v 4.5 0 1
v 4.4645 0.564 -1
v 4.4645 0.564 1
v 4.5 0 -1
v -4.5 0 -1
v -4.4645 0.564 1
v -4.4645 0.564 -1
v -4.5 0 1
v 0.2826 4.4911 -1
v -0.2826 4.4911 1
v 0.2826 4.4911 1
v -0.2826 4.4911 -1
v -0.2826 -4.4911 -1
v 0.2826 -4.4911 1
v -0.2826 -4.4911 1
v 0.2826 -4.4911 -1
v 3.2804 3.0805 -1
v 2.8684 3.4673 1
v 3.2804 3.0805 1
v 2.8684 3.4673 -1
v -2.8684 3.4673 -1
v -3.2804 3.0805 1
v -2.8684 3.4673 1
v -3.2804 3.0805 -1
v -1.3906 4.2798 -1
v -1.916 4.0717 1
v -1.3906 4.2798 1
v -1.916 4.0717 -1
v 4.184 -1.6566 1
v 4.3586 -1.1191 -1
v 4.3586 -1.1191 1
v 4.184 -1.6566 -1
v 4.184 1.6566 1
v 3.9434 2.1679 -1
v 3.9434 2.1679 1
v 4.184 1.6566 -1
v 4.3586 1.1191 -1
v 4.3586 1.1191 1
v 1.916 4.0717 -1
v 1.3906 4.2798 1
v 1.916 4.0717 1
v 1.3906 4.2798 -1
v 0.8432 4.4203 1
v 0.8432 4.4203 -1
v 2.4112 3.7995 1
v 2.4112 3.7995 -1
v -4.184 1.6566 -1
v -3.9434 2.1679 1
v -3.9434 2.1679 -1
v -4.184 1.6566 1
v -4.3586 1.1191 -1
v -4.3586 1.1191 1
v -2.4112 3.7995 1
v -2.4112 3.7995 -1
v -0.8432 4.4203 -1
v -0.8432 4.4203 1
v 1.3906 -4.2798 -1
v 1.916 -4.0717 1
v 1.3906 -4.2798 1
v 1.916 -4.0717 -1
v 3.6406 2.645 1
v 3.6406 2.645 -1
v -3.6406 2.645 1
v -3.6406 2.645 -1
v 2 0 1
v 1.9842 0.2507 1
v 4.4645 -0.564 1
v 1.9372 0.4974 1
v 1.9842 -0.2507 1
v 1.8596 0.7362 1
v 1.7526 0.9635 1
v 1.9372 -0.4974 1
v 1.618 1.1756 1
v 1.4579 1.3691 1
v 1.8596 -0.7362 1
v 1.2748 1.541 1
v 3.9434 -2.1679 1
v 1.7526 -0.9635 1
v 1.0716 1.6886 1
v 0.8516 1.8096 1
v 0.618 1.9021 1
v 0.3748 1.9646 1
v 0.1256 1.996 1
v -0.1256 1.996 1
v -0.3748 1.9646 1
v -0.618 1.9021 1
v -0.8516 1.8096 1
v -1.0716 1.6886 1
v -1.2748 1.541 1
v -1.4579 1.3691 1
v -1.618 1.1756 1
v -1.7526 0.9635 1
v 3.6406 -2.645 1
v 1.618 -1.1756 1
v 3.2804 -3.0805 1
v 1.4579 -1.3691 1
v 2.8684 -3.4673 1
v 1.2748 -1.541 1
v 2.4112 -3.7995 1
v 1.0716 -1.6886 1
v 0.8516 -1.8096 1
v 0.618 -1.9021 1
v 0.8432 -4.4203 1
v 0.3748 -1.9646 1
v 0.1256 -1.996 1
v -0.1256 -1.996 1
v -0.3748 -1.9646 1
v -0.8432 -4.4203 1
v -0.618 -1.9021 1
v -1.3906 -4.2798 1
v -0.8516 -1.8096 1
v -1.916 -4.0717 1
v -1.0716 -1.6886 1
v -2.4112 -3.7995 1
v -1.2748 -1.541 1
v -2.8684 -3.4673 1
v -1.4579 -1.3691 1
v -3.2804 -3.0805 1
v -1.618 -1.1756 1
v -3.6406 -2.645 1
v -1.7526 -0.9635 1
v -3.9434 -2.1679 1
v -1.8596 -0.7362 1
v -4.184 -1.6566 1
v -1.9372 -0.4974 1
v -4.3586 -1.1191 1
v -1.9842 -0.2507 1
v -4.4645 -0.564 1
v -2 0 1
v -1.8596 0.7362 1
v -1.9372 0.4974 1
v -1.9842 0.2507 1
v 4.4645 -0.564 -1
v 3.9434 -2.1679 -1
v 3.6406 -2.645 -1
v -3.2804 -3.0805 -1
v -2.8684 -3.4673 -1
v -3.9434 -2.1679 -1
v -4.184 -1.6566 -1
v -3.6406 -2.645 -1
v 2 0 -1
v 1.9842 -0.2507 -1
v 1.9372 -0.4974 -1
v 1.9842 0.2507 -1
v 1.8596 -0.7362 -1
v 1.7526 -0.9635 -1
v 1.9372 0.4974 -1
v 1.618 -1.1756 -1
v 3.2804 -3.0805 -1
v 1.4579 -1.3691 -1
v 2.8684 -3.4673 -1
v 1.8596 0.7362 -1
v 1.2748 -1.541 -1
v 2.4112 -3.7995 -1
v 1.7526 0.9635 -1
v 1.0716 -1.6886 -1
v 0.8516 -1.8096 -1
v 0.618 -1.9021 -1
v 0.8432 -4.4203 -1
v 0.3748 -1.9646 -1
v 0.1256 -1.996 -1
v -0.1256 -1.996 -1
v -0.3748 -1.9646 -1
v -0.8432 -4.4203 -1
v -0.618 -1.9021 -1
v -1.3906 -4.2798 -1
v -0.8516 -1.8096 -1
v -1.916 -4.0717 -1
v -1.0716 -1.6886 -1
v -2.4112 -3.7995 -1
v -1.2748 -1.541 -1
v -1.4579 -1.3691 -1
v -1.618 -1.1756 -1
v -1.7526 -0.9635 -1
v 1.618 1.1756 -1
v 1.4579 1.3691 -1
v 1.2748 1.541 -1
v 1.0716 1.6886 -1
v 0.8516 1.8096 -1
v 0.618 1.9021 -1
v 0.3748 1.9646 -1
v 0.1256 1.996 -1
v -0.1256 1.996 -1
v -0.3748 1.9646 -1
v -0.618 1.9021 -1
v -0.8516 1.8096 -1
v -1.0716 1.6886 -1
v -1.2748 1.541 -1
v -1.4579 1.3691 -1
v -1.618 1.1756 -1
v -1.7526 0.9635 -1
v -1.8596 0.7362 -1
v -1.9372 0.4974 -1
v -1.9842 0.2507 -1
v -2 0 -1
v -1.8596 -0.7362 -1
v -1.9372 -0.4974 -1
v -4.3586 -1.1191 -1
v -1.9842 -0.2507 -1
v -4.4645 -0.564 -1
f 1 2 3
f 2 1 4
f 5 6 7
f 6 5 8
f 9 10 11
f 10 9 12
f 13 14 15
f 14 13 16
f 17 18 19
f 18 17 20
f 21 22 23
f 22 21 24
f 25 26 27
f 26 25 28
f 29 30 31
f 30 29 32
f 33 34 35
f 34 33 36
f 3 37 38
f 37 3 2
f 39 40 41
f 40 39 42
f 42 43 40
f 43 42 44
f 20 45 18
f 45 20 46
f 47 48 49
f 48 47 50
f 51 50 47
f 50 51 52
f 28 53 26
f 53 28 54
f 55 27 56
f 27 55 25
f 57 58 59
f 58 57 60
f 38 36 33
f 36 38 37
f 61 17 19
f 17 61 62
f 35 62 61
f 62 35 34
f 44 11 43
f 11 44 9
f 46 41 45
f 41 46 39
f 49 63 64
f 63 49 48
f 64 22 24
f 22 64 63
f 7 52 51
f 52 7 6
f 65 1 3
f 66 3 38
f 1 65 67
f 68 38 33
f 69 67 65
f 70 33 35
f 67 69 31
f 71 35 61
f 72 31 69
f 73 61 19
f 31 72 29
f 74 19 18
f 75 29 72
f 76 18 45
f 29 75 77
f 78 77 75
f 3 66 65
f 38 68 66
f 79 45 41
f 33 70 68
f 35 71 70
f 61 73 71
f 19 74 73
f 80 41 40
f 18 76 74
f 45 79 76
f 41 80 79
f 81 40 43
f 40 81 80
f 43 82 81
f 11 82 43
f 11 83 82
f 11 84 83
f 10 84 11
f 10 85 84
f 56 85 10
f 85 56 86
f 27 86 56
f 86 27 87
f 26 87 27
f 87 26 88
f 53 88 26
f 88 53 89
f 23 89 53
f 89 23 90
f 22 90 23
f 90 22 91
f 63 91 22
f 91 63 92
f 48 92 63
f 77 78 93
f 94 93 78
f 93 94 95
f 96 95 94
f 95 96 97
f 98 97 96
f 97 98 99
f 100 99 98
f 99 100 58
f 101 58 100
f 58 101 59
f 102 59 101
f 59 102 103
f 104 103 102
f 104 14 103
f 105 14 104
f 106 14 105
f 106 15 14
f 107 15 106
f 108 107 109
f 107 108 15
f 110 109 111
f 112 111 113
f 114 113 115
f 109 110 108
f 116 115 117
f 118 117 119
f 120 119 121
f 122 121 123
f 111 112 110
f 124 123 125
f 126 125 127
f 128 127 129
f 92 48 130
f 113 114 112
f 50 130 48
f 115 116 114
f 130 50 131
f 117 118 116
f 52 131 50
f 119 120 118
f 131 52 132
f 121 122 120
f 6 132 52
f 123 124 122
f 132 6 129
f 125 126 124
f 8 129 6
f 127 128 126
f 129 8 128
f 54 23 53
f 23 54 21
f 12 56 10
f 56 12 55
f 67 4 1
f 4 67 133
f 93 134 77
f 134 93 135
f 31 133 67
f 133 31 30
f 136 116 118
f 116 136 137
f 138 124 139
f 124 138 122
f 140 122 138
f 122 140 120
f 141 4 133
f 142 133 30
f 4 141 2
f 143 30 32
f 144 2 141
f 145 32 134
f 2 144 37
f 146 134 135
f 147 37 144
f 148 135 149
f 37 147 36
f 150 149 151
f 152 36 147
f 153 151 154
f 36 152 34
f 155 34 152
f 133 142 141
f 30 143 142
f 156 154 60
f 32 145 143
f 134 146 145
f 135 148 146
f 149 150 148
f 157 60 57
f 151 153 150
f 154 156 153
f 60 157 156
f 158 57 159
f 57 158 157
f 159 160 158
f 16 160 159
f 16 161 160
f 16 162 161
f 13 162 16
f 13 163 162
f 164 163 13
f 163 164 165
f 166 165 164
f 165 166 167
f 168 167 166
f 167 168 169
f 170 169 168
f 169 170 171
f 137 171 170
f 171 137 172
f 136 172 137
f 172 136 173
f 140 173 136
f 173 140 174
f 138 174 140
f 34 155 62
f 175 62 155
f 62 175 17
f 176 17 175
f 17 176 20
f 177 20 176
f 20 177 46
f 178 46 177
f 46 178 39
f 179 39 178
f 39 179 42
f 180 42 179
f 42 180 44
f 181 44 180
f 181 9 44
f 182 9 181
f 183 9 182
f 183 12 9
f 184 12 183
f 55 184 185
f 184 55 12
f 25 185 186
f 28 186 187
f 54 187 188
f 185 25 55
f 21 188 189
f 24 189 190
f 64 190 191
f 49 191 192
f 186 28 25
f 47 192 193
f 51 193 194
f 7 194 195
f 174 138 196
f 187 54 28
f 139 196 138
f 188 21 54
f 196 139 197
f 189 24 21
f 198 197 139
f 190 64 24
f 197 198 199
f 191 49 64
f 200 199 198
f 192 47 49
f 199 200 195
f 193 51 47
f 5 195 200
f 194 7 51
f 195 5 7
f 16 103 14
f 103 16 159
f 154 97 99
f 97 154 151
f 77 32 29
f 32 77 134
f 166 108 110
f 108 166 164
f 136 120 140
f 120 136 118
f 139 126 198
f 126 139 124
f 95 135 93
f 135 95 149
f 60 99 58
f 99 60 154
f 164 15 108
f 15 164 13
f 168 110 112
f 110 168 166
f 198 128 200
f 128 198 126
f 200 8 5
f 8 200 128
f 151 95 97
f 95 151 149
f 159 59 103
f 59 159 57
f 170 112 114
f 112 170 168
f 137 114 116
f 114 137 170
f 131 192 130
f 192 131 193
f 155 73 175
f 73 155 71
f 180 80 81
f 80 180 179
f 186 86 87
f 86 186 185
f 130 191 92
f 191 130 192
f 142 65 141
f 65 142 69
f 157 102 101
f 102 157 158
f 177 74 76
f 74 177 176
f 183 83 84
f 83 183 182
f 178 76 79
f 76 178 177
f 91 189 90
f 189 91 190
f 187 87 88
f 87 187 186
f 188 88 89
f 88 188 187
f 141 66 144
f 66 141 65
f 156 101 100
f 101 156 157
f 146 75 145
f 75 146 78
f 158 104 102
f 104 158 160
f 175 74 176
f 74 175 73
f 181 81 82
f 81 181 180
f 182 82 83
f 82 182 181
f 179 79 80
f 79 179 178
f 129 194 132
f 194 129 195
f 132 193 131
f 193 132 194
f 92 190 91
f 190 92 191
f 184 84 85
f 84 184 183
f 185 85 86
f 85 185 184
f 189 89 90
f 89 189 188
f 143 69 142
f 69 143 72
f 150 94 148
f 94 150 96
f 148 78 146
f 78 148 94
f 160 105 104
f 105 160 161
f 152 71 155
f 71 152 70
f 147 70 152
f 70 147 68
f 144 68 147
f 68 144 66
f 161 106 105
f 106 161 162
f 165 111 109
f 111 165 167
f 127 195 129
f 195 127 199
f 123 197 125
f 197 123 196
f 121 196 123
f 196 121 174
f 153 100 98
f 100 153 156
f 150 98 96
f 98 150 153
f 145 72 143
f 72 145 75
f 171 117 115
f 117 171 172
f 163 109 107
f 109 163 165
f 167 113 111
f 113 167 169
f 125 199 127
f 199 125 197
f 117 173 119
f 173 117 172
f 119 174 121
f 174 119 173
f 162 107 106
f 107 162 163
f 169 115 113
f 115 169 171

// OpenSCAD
$fn = 50;


difference() {
	union() {
		translate(v = [0, 0, -1.0000000000]) {
			cylinder(h = 2, r = 4.5000000000);
		}
	}
	union() {
		translate(v = [0, 0, -100.0000000000]) {
			cylinder(h = 200, r = 2);
		}
	}
}
